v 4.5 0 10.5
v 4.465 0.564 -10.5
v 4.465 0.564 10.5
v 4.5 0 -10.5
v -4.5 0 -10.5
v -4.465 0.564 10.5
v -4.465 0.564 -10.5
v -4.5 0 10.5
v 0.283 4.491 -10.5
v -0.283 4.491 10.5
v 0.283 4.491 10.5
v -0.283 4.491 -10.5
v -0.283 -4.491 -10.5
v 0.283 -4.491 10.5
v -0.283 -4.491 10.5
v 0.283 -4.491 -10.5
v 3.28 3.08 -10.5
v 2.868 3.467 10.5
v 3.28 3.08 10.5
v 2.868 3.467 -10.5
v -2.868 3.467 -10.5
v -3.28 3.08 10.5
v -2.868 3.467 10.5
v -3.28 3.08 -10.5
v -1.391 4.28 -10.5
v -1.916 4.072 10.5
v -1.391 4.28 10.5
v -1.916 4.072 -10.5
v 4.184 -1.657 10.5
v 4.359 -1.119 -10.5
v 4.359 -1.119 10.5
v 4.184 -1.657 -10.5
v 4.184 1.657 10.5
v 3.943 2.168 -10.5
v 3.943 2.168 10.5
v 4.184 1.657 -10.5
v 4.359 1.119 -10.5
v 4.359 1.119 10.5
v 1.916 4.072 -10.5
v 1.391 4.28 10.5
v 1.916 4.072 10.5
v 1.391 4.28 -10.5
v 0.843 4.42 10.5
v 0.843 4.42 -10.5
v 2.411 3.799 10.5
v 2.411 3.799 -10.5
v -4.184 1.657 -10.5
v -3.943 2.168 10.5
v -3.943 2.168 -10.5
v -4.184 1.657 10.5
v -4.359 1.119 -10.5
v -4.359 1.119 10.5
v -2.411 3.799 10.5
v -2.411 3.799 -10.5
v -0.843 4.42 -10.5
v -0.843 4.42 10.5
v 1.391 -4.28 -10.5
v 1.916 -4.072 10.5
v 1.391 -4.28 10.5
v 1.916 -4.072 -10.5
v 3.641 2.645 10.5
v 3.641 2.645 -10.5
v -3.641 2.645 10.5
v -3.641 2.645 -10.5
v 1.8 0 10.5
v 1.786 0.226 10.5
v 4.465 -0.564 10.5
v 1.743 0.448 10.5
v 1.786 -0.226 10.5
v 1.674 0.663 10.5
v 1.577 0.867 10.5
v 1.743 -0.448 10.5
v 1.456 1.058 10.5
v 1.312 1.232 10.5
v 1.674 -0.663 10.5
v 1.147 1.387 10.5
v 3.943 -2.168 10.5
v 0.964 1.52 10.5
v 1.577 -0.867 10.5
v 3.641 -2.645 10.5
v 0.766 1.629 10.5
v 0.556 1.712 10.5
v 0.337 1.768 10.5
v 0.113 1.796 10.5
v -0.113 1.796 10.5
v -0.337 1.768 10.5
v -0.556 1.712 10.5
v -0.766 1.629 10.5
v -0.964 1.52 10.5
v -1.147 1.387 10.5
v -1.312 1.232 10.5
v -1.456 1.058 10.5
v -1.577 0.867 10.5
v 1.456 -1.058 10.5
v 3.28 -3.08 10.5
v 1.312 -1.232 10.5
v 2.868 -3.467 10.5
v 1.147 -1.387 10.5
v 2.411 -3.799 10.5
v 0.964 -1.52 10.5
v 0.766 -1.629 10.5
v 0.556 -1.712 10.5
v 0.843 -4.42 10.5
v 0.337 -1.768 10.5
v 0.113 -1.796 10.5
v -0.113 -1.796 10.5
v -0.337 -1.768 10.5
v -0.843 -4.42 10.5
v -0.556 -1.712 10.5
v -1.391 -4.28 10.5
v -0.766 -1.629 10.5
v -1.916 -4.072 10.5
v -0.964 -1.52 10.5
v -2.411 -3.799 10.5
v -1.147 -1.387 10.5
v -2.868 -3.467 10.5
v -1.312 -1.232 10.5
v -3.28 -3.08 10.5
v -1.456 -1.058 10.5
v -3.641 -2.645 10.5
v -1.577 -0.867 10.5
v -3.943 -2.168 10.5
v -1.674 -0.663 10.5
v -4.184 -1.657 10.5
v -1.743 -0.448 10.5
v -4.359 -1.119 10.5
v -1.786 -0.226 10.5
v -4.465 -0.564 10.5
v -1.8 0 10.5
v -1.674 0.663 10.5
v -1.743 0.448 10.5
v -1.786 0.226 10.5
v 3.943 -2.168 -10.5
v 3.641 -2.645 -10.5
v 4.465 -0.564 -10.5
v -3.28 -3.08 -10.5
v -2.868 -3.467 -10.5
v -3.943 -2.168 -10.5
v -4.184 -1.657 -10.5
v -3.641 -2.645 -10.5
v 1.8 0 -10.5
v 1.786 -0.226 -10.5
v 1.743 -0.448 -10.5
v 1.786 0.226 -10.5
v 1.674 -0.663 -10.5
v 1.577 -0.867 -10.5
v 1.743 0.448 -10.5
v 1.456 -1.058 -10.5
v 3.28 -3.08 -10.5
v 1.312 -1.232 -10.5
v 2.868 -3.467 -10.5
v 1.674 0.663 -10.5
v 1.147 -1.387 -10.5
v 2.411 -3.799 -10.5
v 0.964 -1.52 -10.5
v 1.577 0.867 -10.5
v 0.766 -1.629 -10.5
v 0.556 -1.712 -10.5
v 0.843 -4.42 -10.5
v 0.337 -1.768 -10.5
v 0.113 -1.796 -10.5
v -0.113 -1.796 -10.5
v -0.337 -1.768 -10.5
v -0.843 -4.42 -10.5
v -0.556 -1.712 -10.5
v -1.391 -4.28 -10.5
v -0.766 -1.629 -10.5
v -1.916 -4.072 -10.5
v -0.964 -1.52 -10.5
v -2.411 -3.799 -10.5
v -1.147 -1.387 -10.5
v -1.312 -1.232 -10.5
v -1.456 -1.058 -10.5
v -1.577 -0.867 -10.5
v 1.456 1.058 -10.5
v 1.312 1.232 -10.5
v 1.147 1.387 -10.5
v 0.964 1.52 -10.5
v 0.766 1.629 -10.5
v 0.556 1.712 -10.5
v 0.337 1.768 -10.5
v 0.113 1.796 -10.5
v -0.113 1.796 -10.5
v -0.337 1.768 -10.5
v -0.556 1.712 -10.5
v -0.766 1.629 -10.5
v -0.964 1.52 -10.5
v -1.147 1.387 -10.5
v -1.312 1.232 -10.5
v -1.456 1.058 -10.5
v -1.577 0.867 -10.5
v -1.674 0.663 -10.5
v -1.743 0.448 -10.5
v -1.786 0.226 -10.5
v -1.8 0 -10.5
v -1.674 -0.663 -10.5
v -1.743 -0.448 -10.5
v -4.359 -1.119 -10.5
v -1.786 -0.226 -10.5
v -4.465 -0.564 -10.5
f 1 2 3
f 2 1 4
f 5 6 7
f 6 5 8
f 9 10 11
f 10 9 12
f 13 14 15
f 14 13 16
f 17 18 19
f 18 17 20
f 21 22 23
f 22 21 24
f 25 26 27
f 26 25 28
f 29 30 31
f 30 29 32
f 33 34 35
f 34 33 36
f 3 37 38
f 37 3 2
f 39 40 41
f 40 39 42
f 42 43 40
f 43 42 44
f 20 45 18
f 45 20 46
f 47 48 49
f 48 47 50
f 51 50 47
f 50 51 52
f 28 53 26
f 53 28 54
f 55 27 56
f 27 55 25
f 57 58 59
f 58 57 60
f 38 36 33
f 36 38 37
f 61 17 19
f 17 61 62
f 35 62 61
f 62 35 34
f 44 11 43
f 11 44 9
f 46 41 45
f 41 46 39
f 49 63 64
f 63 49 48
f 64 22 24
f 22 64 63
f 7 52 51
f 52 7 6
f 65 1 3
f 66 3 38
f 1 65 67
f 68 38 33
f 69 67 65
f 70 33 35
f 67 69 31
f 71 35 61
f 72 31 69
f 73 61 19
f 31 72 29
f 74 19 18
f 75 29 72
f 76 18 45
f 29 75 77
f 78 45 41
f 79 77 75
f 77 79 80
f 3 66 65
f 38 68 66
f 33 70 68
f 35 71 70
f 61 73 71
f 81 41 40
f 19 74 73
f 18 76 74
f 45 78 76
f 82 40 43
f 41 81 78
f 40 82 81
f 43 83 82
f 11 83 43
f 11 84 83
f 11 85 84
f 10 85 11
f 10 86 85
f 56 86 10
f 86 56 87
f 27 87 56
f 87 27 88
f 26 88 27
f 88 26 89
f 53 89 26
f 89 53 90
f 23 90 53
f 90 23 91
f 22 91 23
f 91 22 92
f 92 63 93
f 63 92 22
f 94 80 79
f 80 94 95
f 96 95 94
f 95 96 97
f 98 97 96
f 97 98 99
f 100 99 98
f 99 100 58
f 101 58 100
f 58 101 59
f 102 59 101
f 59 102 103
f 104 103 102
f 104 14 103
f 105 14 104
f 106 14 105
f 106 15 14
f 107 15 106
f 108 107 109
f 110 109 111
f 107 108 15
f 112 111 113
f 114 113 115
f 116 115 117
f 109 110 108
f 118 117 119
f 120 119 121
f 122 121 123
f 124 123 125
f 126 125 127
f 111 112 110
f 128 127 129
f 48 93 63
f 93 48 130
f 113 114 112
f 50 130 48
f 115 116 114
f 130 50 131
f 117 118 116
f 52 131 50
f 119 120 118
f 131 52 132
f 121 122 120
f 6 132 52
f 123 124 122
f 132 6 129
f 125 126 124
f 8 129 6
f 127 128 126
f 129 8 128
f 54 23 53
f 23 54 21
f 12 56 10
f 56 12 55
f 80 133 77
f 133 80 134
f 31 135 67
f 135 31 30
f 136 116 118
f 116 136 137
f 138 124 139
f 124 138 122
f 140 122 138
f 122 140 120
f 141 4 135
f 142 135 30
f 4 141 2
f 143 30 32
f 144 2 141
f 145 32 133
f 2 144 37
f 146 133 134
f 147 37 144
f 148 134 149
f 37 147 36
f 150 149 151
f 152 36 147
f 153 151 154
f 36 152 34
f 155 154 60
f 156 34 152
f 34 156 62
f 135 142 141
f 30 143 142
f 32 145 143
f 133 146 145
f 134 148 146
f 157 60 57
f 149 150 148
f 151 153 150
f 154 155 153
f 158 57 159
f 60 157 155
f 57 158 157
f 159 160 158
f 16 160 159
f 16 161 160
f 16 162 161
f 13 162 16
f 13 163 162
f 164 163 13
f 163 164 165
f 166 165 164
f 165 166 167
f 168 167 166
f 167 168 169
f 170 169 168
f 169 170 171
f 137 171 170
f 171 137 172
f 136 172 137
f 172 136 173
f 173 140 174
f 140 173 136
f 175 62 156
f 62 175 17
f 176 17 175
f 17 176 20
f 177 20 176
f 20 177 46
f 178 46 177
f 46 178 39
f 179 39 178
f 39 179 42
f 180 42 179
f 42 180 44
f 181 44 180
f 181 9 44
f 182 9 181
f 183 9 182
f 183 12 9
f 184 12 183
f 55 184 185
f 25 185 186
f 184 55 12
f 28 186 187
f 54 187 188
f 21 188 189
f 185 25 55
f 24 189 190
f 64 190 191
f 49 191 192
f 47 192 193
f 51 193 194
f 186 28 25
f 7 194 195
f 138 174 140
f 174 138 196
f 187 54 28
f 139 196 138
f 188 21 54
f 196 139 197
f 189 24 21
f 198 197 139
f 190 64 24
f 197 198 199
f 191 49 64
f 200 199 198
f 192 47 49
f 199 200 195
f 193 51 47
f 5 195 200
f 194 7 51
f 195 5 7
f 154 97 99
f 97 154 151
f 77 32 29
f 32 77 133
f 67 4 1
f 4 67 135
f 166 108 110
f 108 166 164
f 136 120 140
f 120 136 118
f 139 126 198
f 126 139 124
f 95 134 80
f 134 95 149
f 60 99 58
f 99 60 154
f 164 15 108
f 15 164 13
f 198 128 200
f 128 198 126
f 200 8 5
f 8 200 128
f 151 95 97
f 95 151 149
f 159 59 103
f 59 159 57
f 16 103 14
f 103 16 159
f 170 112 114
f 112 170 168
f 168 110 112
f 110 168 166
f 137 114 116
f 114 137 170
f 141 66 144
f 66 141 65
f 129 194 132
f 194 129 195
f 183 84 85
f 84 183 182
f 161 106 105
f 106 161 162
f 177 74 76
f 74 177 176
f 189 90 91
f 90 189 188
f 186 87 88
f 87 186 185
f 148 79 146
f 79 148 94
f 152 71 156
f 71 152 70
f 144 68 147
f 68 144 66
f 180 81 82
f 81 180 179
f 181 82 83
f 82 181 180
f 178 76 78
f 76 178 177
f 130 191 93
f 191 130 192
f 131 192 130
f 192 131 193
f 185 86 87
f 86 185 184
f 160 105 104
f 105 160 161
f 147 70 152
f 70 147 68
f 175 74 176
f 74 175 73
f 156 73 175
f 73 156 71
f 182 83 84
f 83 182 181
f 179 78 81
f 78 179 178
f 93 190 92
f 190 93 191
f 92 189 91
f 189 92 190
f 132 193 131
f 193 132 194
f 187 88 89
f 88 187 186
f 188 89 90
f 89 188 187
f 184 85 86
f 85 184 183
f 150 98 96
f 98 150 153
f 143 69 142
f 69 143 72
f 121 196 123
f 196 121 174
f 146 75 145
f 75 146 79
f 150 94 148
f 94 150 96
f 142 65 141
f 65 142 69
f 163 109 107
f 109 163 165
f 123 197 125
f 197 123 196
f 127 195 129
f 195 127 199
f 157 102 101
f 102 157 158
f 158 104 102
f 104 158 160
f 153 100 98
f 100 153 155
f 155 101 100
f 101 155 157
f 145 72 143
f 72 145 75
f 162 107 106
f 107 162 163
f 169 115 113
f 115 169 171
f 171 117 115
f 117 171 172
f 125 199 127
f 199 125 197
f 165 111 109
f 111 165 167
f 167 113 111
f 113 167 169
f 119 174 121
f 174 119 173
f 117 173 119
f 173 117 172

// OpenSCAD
$fn = 50;


difference() {
	union() {
		translate(v = [0, 0, -10.5000000000]) {
			cylinder(h = 21, r = 4.5000000000);
		}
	}
	union() {
		translate(v = [0, 0, -100.0000000000]) {
			cylinder(h = 200, r = 1.8000000000);
		}
	}
}
